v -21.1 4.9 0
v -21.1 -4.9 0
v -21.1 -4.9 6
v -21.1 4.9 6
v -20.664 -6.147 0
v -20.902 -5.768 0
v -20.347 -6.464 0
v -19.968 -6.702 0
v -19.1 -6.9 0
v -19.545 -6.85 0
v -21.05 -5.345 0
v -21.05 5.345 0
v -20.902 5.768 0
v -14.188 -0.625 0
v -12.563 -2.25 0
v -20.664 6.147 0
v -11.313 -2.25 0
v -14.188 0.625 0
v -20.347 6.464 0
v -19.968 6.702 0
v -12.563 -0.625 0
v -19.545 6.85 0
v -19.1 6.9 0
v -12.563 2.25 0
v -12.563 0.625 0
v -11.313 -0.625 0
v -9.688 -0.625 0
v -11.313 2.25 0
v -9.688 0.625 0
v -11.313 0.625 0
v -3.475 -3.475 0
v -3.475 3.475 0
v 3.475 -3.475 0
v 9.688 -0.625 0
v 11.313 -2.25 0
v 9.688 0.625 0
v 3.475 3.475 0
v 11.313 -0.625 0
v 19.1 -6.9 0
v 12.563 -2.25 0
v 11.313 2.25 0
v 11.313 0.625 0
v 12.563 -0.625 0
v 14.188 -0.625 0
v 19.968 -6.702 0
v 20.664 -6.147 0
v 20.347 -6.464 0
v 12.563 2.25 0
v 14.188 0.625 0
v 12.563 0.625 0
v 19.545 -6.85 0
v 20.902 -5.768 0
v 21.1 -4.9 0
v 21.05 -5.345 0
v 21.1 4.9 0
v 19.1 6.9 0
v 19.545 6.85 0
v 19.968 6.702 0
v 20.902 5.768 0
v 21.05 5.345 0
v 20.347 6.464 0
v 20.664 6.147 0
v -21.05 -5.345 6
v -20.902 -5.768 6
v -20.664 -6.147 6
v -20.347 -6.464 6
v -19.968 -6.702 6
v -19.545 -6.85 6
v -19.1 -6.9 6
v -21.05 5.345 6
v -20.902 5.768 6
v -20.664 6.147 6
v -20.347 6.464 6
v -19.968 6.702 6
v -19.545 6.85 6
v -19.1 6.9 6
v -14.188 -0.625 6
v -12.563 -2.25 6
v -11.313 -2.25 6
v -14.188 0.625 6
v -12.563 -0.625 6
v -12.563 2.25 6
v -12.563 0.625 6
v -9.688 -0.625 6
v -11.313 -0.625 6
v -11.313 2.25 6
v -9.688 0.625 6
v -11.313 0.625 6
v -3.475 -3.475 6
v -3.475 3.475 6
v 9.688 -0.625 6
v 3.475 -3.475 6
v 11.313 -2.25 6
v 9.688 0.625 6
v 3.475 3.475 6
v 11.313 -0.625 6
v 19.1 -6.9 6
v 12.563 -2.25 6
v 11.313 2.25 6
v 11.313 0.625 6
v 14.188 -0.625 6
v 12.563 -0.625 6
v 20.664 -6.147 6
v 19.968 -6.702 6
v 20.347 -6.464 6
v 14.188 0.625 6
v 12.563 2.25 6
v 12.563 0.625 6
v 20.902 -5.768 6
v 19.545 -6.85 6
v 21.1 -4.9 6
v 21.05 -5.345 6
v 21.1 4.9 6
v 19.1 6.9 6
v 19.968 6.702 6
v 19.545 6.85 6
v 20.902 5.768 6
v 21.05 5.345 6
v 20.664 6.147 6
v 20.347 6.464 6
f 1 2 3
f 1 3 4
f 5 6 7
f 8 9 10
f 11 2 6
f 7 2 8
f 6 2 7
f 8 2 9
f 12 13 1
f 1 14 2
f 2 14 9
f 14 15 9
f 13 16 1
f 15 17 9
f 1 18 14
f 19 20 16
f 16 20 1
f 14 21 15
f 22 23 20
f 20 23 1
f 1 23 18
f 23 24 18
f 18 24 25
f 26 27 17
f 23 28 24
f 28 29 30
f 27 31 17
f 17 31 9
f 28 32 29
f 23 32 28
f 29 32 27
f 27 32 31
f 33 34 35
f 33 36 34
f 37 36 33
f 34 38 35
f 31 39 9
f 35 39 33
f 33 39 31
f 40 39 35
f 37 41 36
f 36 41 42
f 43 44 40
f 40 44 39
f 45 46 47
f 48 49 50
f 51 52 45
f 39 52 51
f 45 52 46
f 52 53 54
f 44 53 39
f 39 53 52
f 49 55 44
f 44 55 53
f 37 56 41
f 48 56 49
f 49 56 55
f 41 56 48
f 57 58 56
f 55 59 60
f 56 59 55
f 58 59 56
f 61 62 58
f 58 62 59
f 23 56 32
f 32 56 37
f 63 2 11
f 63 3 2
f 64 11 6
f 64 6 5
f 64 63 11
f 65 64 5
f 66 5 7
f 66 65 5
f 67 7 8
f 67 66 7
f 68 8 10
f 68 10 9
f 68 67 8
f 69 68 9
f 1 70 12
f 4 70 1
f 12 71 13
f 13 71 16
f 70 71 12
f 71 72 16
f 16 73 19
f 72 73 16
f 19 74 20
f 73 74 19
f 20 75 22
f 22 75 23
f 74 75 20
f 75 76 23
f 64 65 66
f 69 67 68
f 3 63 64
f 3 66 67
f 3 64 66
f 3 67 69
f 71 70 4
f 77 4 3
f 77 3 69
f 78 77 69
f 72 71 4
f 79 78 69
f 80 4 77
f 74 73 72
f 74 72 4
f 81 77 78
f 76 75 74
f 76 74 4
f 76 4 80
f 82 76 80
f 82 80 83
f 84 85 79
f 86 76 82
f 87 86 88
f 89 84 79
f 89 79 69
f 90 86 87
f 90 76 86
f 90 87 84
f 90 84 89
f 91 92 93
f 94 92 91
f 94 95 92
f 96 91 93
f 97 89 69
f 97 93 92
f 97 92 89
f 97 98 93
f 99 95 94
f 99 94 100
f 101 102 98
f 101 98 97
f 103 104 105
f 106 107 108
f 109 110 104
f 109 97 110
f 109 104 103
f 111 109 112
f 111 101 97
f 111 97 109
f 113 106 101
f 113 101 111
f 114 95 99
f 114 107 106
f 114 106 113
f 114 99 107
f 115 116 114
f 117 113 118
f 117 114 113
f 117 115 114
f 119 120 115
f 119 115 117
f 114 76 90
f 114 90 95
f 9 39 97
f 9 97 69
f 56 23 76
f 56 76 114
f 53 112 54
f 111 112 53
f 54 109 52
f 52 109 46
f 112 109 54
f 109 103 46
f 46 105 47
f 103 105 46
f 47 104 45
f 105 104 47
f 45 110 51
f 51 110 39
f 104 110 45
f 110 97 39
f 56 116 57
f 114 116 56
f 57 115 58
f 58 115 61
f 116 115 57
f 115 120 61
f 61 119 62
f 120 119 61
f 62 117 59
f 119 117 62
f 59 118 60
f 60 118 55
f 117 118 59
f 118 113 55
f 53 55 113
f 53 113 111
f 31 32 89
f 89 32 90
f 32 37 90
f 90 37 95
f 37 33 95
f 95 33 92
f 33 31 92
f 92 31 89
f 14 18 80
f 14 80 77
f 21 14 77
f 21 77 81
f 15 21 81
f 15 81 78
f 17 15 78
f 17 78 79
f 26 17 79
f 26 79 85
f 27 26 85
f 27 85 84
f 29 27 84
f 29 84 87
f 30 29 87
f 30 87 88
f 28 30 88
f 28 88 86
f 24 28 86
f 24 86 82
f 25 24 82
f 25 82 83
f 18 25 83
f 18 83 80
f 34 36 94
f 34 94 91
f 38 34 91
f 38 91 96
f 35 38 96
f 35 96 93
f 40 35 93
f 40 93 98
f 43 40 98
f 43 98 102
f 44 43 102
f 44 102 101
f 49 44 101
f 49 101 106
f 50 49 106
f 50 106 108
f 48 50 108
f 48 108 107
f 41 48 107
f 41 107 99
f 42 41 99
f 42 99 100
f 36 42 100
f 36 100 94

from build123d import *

# Parameters (mm, degrees)
SKETCH_W   = 42.2
SKETCH_H   = 13.8
SKETCH_W_2 = 6.95
SKETCH_H_2 = 6.95
PAD_DEPTH  = 6
FILLET_R   = 2


with BuildPart() as part:
    # Sketch → Pad (new body)
    with BuildSketch(Plane.XY):
        Rectangle(SKETCH_W, SKETCH_H)
        Rectangle(SKETCH_W_2, SKETCH_H_2, mode=Mode.SUBTRACT)
        Polygon((9.687999, 0.625), (9.687999, -0.625), (11.312999, -0.625), (11.312999, -2.25), (12.562999, -2.25), (12.562999, -0.625), (14.187999, -0.625), (14.187999, 0.625), (12.562999, 0.625), (12.562999, 2.25), (11.312999, 2.25), (11.312999, 0.625), align=None, mode=Mode.SUBTRACT)
        Polygon((-14.187999, 0.625), (-14.188001, -0.625), (-12.563001, -0.625), (-12.563001, -2.25), (-11.313001, -2.25), (-11.313001, -0.625), (-9.687999, -0.625), (-9.687999, 0.625), (-11.312999, 0.625), (-11.312999, 2.25), (-12.562999, 2.25), (-12.562999, 0.625), align=None, mode=Mode.SUBTRACT)
    extrude(amount=PAD_DEPTH)

    # Fillet
    fillet_edges = [part.edges().sort_by_distance(p)[0] for p in [
        (21.1, -6.9, 3),
        (21.1, 6.9, 3),
        (-21.1, -6.9, 3),
        (-21.1, 6.9, 3),
    ]]
    fillet(fillet_edges, radius=FILLET_R)


solid = part.part
